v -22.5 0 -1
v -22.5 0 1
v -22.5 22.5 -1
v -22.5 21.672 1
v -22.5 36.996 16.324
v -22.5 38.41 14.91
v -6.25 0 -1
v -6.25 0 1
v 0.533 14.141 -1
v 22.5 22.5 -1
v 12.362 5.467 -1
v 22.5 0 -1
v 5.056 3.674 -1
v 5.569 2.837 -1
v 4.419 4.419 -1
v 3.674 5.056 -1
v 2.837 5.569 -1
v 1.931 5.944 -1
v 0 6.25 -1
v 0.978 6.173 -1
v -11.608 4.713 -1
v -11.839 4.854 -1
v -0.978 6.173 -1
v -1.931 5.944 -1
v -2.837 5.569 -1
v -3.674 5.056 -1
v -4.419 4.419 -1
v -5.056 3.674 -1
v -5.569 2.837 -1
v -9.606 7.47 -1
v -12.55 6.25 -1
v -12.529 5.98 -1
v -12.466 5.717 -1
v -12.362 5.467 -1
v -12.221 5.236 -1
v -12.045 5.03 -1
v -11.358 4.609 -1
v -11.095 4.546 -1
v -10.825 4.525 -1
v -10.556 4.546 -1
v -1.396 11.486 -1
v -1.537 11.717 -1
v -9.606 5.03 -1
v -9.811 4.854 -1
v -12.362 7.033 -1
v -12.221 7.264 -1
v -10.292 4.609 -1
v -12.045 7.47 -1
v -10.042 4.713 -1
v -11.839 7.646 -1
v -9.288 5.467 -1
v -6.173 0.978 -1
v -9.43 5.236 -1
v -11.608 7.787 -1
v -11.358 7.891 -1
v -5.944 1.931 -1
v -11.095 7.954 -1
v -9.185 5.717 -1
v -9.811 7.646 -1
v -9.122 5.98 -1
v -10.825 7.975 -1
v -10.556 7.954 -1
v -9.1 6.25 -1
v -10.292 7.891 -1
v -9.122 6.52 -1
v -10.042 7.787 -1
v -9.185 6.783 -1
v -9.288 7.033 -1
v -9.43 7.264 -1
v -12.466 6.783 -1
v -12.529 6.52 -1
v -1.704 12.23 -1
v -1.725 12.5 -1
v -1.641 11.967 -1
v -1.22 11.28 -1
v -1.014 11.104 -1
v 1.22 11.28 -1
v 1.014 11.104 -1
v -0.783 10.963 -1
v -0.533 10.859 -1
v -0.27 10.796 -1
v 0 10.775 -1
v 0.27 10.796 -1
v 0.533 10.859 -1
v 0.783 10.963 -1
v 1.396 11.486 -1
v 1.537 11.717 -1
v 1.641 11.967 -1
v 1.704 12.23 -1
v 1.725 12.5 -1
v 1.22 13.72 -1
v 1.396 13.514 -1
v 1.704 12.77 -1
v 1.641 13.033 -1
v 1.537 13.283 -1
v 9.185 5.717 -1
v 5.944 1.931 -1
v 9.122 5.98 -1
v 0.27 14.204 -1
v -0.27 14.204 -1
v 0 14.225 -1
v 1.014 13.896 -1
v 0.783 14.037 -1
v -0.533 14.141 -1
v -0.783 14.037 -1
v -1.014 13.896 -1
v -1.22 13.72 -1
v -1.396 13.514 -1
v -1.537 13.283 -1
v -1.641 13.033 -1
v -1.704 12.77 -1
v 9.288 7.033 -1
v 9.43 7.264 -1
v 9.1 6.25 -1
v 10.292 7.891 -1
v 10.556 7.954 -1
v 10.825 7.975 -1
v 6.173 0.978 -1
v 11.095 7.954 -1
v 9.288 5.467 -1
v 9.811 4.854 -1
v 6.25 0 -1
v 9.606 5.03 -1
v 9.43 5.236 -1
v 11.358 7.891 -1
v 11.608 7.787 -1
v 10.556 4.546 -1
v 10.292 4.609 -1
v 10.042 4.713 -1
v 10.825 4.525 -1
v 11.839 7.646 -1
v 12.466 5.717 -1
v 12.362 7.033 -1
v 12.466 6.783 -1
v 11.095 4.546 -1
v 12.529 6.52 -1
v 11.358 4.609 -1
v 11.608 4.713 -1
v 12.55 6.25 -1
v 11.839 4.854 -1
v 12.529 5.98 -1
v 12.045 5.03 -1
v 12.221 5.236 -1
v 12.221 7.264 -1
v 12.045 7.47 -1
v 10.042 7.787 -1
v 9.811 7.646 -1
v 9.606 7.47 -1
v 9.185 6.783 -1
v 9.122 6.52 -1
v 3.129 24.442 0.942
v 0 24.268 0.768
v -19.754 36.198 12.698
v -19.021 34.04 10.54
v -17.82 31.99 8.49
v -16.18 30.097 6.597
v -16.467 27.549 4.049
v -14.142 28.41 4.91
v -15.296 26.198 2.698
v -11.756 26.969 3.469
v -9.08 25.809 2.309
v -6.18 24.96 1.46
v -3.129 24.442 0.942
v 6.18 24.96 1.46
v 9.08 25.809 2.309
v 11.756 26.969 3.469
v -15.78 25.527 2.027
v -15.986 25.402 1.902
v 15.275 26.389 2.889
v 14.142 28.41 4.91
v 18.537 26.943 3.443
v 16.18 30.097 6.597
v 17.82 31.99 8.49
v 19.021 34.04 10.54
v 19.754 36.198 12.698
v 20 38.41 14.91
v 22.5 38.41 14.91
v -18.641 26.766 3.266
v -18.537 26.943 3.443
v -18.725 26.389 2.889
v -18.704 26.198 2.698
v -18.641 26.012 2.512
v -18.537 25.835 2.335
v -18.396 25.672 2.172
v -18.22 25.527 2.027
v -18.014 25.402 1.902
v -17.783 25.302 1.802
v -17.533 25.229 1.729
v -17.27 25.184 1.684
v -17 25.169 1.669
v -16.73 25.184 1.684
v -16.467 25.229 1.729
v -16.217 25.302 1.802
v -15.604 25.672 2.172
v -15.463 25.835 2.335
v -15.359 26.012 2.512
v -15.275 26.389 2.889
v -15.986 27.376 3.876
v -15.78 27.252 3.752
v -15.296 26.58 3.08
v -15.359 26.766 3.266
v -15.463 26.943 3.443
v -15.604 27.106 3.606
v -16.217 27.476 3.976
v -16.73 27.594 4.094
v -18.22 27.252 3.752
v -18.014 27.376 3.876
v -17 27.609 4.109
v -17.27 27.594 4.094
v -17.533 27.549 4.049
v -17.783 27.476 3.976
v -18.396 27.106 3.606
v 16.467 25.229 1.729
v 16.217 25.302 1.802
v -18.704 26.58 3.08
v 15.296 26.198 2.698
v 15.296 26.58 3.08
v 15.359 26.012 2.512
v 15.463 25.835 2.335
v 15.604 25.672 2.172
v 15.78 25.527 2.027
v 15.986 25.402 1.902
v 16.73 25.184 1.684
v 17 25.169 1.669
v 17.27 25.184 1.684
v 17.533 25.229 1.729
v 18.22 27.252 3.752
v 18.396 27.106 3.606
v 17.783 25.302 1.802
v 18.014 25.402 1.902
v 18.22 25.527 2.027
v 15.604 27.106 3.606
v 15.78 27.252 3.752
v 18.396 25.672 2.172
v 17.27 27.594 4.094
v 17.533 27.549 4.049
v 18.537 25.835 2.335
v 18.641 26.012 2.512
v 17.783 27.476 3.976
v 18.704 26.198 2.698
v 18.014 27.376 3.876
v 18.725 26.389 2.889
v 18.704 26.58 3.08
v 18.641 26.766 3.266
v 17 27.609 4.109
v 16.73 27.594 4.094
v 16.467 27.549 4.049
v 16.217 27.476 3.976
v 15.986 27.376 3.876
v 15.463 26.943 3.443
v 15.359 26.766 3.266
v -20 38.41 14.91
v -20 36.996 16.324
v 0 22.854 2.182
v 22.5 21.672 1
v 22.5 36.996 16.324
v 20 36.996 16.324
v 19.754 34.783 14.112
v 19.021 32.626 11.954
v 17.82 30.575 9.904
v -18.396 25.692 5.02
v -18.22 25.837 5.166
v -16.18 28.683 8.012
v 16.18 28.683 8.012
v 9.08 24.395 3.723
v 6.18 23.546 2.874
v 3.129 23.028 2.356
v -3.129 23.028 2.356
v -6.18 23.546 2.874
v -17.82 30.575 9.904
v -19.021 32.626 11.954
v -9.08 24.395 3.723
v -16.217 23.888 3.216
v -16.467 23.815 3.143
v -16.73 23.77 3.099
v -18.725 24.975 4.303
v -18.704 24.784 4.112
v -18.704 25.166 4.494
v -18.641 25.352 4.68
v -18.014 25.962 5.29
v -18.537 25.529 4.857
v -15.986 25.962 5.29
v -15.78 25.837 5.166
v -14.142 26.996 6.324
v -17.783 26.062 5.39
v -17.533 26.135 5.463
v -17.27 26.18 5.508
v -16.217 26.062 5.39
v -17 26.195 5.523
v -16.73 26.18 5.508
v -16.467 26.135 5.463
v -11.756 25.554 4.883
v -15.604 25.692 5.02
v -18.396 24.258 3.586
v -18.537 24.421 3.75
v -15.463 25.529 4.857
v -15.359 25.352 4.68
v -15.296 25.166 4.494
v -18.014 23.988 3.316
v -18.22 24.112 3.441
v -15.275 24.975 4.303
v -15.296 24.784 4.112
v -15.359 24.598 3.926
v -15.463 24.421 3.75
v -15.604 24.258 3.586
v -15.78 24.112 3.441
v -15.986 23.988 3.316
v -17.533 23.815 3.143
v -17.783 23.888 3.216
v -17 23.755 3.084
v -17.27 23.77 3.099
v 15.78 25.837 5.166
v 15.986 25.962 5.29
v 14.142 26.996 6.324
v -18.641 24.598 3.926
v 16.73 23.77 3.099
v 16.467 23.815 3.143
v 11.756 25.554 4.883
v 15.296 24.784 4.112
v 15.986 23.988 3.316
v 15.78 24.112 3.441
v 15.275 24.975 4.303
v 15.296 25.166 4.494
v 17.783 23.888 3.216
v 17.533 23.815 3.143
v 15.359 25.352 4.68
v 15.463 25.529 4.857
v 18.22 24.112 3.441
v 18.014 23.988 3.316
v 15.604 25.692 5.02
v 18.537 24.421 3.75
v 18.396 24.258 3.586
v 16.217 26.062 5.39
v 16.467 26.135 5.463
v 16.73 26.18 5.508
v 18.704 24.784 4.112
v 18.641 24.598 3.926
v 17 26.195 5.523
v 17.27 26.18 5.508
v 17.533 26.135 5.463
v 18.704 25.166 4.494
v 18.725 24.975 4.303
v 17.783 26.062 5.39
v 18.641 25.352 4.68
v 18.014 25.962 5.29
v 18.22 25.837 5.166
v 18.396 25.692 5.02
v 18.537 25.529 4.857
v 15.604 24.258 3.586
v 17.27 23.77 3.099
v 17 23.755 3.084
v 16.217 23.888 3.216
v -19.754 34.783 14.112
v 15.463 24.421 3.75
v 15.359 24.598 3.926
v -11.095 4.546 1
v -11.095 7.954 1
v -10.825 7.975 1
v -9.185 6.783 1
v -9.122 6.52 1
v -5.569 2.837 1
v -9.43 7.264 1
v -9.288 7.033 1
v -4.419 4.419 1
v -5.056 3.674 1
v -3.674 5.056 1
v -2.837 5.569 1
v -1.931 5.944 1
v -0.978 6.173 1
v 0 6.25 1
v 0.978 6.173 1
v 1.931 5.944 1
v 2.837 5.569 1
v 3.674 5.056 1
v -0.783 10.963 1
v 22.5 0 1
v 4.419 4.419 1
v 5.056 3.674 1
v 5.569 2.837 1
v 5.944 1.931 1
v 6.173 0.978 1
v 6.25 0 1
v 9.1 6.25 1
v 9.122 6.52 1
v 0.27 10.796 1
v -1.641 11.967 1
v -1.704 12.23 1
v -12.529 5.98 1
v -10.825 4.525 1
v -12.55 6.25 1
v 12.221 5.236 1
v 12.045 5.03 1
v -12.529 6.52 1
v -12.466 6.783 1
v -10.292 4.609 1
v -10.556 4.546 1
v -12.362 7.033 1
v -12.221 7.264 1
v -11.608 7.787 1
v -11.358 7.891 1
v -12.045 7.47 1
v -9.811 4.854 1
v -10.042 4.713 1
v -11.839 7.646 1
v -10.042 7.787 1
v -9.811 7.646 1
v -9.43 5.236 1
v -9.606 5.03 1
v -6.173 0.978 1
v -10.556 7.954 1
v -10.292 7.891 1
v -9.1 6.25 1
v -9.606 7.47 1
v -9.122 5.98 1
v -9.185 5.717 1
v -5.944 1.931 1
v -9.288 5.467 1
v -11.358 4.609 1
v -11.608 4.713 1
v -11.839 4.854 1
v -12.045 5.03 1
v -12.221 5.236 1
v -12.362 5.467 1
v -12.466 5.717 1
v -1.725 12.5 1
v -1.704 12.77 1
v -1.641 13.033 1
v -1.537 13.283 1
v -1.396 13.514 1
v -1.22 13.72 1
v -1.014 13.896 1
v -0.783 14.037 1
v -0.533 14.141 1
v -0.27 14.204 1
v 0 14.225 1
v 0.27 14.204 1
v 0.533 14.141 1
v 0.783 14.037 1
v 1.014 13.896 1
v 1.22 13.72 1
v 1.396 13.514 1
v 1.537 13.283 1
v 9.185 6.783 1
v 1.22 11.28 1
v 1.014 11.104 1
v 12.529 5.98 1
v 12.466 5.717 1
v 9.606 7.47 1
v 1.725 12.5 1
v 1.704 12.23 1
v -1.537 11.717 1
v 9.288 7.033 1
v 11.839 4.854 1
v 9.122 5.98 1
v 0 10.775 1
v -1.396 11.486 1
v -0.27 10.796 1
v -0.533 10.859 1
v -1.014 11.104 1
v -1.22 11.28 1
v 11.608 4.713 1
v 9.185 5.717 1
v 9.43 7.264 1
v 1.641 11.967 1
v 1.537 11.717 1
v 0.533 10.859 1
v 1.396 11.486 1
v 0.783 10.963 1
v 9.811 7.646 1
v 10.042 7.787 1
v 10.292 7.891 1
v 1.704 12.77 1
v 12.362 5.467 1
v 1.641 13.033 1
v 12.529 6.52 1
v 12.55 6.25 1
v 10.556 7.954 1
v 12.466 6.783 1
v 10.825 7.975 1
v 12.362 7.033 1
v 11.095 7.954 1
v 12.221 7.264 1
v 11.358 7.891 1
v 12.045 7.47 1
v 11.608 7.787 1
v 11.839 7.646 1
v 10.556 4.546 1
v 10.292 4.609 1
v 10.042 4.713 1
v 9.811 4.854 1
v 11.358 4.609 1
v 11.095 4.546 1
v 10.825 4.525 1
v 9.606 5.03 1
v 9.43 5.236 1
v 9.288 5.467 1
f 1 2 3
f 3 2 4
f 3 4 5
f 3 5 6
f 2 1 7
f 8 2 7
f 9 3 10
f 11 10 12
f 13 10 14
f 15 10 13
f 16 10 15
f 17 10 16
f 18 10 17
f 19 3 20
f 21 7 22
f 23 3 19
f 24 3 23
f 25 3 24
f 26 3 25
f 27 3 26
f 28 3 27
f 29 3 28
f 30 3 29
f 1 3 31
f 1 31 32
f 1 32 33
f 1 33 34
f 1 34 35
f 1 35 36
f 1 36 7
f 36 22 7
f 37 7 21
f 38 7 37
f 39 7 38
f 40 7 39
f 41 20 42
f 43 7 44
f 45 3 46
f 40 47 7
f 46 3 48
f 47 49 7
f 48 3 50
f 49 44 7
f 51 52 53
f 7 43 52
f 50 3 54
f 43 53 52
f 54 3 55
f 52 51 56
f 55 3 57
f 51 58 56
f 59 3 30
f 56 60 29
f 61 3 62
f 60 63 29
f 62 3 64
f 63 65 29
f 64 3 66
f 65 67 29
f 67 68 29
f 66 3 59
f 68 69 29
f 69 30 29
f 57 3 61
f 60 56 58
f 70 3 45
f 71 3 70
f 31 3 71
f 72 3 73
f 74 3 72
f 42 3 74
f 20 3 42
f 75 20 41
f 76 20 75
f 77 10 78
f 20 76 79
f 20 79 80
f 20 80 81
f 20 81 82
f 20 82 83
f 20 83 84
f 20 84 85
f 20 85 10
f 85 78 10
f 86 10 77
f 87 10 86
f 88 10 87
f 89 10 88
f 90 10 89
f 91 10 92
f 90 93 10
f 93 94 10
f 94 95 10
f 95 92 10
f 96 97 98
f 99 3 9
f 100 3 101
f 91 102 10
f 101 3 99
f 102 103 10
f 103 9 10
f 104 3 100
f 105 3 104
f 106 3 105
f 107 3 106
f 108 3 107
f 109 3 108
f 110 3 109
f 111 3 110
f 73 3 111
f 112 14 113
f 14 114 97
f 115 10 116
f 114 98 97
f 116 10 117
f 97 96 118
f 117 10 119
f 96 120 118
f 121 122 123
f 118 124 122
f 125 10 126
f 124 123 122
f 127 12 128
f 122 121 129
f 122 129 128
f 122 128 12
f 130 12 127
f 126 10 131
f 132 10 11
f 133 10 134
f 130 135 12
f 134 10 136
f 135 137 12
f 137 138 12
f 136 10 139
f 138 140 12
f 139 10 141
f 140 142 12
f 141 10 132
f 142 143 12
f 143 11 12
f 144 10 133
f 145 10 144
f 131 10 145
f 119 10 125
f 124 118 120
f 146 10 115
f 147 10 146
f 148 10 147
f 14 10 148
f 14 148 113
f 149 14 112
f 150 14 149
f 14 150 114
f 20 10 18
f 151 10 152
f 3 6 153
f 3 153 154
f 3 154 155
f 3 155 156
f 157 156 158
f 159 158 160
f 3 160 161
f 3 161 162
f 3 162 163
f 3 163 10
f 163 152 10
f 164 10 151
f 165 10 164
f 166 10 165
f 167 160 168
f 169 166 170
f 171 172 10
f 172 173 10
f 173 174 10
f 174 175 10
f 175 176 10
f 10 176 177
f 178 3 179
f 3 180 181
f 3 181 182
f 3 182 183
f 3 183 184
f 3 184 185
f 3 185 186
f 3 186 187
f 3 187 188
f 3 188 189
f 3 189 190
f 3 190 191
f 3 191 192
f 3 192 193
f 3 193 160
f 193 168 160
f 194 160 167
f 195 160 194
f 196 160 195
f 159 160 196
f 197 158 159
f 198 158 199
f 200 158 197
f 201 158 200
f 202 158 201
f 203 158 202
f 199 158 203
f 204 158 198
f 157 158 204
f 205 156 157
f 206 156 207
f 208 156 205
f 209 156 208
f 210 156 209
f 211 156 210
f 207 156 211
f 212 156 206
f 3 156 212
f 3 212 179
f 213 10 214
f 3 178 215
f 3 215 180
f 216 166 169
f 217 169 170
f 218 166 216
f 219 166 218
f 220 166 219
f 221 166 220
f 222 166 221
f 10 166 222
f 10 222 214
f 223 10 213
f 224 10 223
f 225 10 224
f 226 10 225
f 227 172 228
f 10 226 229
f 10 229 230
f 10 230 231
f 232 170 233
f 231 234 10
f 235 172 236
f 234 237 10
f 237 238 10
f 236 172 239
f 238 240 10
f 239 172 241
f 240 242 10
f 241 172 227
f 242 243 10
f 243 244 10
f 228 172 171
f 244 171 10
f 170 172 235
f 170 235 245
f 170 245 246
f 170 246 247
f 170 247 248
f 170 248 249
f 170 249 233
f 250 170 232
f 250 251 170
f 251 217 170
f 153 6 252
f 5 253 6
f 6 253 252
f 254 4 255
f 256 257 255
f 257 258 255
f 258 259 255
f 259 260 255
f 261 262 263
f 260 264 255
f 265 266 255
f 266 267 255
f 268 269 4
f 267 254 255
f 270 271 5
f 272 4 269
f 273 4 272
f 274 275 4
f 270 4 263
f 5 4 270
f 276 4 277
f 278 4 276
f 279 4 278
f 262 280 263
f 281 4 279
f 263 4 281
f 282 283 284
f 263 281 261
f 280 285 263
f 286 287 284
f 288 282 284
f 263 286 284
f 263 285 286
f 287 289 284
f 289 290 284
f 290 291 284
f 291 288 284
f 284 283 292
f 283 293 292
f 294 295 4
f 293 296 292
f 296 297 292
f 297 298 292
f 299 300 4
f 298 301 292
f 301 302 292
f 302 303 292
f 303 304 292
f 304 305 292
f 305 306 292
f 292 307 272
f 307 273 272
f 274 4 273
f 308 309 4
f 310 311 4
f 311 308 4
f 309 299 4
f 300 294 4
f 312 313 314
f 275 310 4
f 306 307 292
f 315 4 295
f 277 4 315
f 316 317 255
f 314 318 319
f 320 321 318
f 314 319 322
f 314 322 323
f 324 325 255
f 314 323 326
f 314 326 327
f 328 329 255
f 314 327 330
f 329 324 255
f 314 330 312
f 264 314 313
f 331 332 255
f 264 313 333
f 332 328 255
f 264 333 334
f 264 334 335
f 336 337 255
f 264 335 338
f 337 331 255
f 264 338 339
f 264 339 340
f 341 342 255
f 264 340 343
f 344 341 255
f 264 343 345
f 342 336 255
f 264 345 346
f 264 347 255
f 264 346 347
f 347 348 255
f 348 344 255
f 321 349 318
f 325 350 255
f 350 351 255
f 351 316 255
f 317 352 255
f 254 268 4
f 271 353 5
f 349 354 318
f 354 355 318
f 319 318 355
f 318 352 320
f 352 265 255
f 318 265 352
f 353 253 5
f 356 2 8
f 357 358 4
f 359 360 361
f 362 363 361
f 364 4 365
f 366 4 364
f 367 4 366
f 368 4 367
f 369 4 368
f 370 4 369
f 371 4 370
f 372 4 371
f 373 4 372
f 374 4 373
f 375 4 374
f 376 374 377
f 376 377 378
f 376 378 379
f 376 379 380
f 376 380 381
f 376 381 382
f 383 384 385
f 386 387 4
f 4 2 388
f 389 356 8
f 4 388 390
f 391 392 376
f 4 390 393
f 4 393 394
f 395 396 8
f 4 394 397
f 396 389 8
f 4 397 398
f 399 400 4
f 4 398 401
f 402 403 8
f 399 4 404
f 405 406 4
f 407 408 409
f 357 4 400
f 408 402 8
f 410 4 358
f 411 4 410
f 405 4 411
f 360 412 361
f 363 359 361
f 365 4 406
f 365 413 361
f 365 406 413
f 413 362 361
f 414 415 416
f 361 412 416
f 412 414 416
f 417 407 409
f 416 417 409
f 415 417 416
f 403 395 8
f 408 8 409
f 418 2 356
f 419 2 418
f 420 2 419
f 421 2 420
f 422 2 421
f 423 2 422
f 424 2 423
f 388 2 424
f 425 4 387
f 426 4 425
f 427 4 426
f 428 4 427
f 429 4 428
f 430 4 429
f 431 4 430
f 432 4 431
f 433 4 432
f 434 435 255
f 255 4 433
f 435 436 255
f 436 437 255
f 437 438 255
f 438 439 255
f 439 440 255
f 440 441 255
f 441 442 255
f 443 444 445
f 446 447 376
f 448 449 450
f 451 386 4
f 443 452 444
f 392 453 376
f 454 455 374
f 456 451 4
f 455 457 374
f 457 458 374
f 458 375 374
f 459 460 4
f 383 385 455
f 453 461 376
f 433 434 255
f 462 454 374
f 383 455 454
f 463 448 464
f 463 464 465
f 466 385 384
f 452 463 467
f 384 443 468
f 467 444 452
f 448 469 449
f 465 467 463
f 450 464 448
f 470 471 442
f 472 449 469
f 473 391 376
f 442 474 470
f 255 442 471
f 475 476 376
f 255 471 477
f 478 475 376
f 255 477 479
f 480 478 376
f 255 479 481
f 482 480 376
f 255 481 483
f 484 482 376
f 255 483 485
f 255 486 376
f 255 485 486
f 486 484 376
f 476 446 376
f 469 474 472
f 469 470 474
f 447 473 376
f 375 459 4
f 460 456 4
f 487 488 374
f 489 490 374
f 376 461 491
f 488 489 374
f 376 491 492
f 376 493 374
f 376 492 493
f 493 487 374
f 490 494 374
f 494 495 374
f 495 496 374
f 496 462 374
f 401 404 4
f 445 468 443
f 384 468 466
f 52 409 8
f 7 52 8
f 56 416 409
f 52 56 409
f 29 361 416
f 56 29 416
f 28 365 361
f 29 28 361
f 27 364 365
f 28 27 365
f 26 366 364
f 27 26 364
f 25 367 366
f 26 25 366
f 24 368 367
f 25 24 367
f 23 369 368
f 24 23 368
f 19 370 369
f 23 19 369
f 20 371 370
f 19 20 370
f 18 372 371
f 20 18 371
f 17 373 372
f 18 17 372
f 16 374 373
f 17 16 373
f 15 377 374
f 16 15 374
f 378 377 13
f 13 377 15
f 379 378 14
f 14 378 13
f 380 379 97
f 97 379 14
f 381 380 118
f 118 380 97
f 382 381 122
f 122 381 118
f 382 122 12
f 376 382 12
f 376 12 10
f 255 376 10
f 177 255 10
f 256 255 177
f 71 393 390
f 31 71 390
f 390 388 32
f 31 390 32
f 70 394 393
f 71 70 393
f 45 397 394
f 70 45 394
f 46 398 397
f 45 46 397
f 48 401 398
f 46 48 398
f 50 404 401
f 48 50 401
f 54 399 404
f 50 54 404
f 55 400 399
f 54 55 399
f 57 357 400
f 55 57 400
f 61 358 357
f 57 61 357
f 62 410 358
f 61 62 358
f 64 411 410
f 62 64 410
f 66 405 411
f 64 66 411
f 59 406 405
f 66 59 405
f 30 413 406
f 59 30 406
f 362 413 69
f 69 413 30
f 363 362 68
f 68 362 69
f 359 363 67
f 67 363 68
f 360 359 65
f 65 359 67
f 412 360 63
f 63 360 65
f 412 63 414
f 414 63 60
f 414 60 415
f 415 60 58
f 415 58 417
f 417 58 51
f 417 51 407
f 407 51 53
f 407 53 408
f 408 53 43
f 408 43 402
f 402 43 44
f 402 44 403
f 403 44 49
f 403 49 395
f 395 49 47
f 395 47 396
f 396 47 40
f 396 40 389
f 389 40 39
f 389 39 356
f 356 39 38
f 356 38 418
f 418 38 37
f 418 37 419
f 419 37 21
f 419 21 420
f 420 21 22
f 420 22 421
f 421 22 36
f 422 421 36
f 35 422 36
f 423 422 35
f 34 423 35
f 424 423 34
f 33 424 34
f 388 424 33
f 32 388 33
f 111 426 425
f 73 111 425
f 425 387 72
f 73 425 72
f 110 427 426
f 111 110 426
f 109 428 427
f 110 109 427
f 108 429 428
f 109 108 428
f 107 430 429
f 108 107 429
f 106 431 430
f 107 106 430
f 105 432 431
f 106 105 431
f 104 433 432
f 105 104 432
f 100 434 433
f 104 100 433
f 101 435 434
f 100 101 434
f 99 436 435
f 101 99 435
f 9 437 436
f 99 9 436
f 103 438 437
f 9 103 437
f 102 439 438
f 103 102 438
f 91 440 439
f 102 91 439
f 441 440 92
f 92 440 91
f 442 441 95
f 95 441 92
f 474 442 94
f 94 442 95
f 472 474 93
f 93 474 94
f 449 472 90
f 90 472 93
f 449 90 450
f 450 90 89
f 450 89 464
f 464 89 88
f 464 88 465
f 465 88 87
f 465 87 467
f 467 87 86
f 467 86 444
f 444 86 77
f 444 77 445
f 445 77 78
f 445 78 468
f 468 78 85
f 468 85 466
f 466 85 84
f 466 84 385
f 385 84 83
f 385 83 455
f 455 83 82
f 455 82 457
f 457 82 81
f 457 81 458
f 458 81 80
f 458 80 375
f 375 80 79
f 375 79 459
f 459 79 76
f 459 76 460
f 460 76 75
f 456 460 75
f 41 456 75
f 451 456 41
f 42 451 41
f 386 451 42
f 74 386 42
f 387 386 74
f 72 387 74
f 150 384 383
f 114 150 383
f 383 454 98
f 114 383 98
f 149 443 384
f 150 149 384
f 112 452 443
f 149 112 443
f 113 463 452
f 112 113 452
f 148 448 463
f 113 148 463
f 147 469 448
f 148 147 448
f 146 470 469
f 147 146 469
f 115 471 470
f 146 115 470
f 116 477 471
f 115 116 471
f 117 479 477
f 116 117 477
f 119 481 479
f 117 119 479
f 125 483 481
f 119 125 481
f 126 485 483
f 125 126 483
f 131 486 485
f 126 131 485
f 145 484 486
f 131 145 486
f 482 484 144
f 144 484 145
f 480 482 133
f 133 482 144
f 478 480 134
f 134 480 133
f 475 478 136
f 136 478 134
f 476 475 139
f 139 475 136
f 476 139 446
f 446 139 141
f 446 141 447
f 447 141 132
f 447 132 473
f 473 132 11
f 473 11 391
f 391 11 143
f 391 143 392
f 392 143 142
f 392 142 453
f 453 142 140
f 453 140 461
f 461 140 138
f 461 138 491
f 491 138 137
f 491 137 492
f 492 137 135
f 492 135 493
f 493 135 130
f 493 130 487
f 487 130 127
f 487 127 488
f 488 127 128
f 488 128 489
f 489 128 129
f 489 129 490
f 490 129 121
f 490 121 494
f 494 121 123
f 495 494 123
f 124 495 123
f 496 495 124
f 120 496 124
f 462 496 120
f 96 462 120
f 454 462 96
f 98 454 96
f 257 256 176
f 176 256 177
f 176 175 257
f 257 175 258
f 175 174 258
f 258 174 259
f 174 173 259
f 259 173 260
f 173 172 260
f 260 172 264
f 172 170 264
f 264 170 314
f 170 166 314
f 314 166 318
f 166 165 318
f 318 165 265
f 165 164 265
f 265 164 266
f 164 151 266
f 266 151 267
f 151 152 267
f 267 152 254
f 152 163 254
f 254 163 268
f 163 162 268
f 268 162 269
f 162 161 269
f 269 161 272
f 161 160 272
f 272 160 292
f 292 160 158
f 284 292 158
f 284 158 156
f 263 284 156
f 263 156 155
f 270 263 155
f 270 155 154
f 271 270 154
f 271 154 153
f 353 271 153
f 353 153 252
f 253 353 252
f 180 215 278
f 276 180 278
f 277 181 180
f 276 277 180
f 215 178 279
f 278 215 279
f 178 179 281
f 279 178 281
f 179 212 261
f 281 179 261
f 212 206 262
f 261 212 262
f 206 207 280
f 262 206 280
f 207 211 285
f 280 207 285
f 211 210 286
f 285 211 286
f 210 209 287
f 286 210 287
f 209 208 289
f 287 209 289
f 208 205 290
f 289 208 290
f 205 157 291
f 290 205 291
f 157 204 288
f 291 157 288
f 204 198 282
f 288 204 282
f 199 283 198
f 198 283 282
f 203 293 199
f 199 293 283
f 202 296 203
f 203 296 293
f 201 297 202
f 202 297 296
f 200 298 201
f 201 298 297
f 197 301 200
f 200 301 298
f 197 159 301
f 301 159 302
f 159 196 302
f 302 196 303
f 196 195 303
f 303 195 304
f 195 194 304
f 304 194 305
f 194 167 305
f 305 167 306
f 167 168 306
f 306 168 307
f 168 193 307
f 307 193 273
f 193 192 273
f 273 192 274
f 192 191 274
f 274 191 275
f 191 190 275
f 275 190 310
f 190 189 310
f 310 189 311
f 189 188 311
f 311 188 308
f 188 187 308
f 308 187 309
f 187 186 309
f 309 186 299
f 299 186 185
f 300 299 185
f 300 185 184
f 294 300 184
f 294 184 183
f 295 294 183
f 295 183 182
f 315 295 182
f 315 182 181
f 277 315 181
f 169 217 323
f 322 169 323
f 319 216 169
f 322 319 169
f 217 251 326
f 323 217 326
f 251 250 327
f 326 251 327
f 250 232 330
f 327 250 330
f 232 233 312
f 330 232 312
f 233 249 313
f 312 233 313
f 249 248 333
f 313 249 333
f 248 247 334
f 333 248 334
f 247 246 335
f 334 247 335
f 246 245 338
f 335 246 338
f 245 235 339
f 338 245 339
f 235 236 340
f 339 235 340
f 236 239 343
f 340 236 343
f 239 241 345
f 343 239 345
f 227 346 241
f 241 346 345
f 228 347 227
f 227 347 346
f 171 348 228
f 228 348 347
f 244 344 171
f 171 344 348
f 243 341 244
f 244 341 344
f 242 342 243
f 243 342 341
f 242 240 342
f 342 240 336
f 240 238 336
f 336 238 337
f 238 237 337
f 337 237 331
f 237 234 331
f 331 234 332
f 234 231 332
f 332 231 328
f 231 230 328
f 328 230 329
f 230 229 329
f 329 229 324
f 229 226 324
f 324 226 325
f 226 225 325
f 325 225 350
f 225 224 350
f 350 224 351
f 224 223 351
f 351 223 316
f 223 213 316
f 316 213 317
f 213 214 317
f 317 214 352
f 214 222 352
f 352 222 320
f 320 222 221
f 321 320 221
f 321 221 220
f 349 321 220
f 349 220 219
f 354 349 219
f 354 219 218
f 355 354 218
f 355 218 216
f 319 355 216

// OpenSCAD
// file: configuration.scad
// Increase this if your slicer or printer make holes too tight.
extra_radius = 0.1;

// OD = outside diameter, corner to corner.
m3_nut_od = 6.1;
m3_nut_radius = m3_nut_od/2 + 0.2 + extra_radius;
m3_washer_radius = 3.5 + extra_radius;

// Major diameter of metric 3mm thread.
m3_major = 2.85;
m3_radius = m3_major/2 + extra_radius;
m3_wide_radius = m3_major/2 + extra_radius + 0.2;

// NEMA17 stepper motors.
motor_shaft_diameter = 5;
motor_shaft_radius = motor_shaft_diameter/2 + extra_radius;

// Frame brackets. M3x8mm screws work best with 3.6 mm brackets.
thickness = 3.6;

// OpenBeam or Misumi. Currently only 15x15 mm, but there is a plan
// to make models more parametric and allow 20x20 mm in the future.
extrusion = 15;

// Placement for the NEMA17 stepper motors.
motor_offset = 44;
motor_length = 47;

probe_tunnel_radius = 1.25 + extra_radius;
probe_excentricity = 5;
// main file
include <configuration.scad>;

// Overall mount dimensions
mount_thickness = 2;
mount_angle = 45;

// Through holes
hole_radius = 12.5;

// Slot and lip for installation
bracket_width = 45;
fan_radius = 20;
hole_offset = 3; // offset between the fan mounting holes and its outside surfaces
lip_radius = 7.75;
lip_thickness = 1;

slot_radius = 6.25;

$fn = 40;

difference() {
  union() {
    
    translate([0, (1+cos(mount_angle))*bracket_width/2-sin(mount_angle)*mount_thickness/2, sin(mount_angle)*bracket_width/2 - (1-cos(mount_angle))*mount_thickness/2]) rotate(a=mount_angle, v=[1,0,0]) difference() {
      translate([0, -bracket_width/4, 0]) cube([bracket_width, bracket_width/2, mount_thickness], center=true);
      cylinder(r=fan_radius, h=mount_thickness, center=true);
      translate([-(fan_radius-hole_offset), -(fan_radius-hole_offset), 0])cylinder(r=m3_wide_radius, h=mount_thickness, center=true);
      translate([(fan_radius-hole_offset),  -(fan_radius-hole_offset), 0])cylinder(r=m3_wide_radius, h=mount_thickness, center=true);
    }

    translate([0, bracket_width/4, 0])cube([bracket_width, bracket_width/2, mount_thickness], center=true);
  }

  // Thru holes
  for (hole_angle = [0:60:360]) {
    translate([sin(hole_angle)*hole_radius,cos(hole_angle)*hole_radius,0]) cylinder(r=m3_wide_radius, h=mount_thickness, center=true);
  }

  // Thru slot
  cylinder(r=slot_radius, h=mount_thickness, center=true);
};
